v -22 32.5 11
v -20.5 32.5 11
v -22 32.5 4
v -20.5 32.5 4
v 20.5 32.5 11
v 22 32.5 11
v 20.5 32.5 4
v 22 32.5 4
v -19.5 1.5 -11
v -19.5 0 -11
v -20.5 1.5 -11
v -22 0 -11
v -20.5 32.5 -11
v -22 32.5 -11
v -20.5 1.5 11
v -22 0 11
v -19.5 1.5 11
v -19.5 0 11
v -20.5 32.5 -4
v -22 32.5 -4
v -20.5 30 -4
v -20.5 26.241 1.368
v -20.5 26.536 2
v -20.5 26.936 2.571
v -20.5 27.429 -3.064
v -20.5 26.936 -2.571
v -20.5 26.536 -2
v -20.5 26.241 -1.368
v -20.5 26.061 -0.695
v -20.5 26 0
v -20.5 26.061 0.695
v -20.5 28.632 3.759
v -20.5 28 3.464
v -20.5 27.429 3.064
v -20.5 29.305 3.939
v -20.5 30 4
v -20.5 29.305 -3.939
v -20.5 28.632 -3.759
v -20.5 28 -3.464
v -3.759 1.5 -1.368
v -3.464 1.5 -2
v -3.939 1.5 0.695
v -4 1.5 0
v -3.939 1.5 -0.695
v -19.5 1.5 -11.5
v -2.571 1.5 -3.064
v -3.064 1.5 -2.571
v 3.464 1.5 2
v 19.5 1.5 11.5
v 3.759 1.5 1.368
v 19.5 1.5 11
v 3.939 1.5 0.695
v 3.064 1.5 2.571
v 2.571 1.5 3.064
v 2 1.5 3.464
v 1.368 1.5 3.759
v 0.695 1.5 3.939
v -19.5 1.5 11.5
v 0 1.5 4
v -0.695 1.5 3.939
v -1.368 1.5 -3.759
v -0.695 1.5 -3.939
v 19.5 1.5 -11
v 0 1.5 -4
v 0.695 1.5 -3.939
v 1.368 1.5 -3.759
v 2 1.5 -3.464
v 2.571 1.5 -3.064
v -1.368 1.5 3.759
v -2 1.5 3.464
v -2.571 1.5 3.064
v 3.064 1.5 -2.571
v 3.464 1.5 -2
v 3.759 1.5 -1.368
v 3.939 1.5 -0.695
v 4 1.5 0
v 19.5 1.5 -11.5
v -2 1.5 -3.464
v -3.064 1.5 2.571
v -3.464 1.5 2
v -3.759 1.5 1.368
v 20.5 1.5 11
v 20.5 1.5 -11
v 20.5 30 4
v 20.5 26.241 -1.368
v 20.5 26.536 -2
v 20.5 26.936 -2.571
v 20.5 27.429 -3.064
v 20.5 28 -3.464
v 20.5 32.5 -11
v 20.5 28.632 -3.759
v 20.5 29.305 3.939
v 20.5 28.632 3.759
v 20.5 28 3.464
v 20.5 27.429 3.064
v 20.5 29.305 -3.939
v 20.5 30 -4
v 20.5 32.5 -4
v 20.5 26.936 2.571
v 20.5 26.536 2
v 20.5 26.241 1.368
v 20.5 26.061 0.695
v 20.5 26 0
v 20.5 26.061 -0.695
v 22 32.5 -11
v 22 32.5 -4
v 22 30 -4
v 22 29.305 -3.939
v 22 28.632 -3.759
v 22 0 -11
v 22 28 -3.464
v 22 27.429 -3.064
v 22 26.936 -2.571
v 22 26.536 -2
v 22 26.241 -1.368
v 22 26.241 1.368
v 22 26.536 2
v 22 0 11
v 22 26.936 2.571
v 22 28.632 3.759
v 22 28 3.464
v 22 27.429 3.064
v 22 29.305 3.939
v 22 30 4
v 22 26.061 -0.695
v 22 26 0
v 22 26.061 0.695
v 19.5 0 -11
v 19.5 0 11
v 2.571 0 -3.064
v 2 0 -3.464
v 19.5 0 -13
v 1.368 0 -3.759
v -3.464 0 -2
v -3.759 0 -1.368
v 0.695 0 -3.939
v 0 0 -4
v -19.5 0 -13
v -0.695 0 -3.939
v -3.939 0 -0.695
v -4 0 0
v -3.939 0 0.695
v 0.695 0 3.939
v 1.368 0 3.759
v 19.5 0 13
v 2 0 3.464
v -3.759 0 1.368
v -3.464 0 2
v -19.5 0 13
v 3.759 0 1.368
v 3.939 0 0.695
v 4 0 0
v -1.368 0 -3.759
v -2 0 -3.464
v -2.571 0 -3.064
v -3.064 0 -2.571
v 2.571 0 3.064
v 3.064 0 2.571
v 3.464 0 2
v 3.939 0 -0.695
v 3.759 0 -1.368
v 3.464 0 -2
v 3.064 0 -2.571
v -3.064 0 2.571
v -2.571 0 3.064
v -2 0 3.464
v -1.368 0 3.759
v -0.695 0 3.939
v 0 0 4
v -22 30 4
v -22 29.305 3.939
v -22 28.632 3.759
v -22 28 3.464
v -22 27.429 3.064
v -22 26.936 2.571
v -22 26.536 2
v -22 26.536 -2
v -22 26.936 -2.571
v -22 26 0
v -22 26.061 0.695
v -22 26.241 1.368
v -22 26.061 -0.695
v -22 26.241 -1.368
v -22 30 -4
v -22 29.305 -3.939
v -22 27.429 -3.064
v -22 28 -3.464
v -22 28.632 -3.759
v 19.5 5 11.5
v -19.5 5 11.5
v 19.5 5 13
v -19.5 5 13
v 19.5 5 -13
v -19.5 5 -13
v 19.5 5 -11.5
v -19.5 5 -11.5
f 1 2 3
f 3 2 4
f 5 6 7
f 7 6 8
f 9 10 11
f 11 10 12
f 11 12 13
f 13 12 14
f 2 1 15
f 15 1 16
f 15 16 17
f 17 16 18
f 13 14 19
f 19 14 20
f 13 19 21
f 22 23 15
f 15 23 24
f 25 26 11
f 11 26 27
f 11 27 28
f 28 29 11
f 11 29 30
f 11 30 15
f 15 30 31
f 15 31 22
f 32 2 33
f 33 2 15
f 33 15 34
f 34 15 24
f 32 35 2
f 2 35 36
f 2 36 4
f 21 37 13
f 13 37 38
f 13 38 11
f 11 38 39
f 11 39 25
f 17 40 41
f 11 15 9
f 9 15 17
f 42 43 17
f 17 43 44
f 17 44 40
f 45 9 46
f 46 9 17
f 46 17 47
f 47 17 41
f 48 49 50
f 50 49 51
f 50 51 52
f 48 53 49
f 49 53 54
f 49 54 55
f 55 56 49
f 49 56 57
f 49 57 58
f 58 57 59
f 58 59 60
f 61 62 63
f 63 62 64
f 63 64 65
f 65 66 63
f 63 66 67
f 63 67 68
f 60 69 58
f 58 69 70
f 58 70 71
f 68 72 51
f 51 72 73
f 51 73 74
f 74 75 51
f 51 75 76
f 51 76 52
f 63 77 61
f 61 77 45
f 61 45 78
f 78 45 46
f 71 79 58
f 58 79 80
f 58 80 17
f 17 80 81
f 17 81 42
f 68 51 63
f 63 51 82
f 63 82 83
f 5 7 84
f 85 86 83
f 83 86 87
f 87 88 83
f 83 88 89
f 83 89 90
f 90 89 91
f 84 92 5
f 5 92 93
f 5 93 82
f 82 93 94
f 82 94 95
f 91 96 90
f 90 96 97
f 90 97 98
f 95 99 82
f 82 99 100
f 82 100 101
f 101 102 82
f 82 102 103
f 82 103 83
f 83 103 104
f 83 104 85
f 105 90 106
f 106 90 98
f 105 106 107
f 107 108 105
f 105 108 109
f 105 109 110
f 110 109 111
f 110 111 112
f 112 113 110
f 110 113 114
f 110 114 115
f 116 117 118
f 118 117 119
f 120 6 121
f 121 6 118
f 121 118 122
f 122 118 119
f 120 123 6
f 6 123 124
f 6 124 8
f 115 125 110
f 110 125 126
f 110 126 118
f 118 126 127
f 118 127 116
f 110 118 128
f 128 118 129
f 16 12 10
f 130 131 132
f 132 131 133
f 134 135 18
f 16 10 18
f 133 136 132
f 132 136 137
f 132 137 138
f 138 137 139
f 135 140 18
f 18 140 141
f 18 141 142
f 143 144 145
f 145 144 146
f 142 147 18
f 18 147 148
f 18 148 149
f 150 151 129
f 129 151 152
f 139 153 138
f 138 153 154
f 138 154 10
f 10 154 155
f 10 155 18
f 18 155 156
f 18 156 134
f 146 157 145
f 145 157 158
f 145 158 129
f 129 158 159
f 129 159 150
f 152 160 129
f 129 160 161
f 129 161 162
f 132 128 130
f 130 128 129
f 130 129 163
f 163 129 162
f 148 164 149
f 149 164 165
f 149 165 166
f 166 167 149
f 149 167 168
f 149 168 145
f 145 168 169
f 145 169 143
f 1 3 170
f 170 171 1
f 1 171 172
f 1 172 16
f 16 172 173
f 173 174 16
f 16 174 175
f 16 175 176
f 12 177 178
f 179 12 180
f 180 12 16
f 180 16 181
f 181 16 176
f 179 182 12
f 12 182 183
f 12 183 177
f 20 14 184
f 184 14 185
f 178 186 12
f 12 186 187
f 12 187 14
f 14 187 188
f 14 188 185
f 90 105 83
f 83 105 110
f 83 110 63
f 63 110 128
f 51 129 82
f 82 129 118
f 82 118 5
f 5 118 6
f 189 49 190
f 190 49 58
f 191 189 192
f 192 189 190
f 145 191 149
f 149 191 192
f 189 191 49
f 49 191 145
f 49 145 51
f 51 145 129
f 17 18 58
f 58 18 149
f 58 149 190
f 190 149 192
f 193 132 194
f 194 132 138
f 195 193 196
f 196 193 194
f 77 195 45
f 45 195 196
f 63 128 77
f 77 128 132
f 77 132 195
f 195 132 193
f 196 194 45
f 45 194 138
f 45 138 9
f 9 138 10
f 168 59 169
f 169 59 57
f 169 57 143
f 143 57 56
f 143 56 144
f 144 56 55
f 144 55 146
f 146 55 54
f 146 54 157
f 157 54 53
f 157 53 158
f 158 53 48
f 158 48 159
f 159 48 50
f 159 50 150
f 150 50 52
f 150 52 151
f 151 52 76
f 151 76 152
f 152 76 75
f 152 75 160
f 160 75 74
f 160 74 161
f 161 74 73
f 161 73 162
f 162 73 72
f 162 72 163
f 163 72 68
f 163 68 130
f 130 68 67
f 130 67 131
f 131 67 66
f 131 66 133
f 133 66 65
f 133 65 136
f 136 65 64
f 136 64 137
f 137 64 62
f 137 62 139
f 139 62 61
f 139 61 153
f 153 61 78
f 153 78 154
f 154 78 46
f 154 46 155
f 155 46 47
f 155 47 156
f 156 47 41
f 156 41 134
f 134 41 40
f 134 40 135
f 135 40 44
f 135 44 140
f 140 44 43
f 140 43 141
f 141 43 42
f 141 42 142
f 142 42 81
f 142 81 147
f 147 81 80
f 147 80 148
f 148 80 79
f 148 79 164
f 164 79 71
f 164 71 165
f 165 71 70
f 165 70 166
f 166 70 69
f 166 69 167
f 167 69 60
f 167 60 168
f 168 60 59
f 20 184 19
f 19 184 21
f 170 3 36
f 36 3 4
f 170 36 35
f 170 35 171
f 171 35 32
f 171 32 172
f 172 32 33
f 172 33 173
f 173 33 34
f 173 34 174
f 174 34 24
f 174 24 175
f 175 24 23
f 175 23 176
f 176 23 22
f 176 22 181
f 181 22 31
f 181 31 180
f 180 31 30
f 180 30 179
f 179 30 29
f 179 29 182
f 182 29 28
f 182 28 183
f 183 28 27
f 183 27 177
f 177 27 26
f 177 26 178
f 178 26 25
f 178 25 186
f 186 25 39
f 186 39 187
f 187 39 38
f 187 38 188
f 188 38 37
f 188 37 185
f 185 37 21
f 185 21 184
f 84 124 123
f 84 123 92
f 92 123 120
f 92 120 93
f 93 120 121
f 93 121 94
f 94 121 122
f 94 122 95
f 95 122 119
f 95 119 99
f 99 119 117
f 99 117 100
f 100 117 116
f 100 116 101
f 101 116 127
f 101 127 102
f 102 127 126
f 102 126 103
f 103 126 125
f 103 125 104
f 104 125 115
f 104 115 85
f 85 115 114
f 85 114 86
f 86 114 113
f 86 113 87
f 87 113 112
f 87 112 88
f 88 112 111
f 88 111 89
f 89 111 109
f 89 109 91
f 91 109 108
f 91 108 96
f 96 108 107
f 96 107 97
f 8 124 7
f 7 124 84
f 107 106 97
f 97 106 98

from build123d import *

# Parameters (mm, degrees)
BOSS_EXTRUDE1_DEPTH = 11
BOSS_EXTRUDE2_DEPTH = 19.5
SKETCH3_R           = 4
CUT_EXTRUDE1_DEPTH  = 41.174618853
CUT_EXTRUDE2_DEPTH  = 57.224994442


with BuildPart() as part:
    # Sketch1 → Boss-Extrude1 (new, symmetric)
    with BuildSketch(Plane.XY):
        Polygon((-22, 32.5), (-22, 0), (22, 0), (22, 32.5), (20.5, 32.5), (20.5, 1.5), (-20.5, 1.5), (-20.5, 32.5), align=None)
    extrude(amount=BOSS_EXTRUDE1_DEPTH, both=True)

    # Sketch2 → Boss-Extrude2 (add, symmetric)
    with BuildSketch(Plane(origin=(0, 0, 0), x_dir=(0, 0, -1), z_dir=(1, 0, 0))):
        Polygon((-11, 0), (-13, 0), (-13, 5), (-11.5, 5), (-11.5, 1.5), (-11, 1.5), align=None)
    boss_extrude2 = extrude(amount=BOSS_EXTRUDE2_DEPTH, both=True)

    # Mirror1: Boss-Extrude2 across plane
    add(boss_extrude2.mirror(Plane.XY))

    # Sketch3 → Cut-Extrude1 (cut, through all)
    with BuildSketch(Plane(origin=(0, 1.5, 0), x_dir=(-1, 0, 0), z_dir=(0, 1, 0))):
        with Locations(Location((0, 0, 0), (0, 0, 90))):
            Circle(SKETCH3_R)
    extrude(amount=-CUT_EXTRUDE1_DEPTH, mode=Mode.SUBTRACT)

    # Sketch4 → Cut-Extrude2 (cut, through all)
    with BuildSketch(Plane(origin=(22, 0, 0), x_dir=(0, 0, -1), z_dir=(1, 0, 0))):
        with BuildLine():
            Line((-4, 30), (-4, 32.5))
            Line((-4, 32.5), (4, 32.5))
            Line((4, 32.5), (4, 30))
            ThreePointArc((4, 30), (0, 26), (-4, 30))
        make_face()
    extrude(amount=-CUT_EXTRUDE2_DEPTH, mode=Mode.SUBTRACT)


solid = part.part
